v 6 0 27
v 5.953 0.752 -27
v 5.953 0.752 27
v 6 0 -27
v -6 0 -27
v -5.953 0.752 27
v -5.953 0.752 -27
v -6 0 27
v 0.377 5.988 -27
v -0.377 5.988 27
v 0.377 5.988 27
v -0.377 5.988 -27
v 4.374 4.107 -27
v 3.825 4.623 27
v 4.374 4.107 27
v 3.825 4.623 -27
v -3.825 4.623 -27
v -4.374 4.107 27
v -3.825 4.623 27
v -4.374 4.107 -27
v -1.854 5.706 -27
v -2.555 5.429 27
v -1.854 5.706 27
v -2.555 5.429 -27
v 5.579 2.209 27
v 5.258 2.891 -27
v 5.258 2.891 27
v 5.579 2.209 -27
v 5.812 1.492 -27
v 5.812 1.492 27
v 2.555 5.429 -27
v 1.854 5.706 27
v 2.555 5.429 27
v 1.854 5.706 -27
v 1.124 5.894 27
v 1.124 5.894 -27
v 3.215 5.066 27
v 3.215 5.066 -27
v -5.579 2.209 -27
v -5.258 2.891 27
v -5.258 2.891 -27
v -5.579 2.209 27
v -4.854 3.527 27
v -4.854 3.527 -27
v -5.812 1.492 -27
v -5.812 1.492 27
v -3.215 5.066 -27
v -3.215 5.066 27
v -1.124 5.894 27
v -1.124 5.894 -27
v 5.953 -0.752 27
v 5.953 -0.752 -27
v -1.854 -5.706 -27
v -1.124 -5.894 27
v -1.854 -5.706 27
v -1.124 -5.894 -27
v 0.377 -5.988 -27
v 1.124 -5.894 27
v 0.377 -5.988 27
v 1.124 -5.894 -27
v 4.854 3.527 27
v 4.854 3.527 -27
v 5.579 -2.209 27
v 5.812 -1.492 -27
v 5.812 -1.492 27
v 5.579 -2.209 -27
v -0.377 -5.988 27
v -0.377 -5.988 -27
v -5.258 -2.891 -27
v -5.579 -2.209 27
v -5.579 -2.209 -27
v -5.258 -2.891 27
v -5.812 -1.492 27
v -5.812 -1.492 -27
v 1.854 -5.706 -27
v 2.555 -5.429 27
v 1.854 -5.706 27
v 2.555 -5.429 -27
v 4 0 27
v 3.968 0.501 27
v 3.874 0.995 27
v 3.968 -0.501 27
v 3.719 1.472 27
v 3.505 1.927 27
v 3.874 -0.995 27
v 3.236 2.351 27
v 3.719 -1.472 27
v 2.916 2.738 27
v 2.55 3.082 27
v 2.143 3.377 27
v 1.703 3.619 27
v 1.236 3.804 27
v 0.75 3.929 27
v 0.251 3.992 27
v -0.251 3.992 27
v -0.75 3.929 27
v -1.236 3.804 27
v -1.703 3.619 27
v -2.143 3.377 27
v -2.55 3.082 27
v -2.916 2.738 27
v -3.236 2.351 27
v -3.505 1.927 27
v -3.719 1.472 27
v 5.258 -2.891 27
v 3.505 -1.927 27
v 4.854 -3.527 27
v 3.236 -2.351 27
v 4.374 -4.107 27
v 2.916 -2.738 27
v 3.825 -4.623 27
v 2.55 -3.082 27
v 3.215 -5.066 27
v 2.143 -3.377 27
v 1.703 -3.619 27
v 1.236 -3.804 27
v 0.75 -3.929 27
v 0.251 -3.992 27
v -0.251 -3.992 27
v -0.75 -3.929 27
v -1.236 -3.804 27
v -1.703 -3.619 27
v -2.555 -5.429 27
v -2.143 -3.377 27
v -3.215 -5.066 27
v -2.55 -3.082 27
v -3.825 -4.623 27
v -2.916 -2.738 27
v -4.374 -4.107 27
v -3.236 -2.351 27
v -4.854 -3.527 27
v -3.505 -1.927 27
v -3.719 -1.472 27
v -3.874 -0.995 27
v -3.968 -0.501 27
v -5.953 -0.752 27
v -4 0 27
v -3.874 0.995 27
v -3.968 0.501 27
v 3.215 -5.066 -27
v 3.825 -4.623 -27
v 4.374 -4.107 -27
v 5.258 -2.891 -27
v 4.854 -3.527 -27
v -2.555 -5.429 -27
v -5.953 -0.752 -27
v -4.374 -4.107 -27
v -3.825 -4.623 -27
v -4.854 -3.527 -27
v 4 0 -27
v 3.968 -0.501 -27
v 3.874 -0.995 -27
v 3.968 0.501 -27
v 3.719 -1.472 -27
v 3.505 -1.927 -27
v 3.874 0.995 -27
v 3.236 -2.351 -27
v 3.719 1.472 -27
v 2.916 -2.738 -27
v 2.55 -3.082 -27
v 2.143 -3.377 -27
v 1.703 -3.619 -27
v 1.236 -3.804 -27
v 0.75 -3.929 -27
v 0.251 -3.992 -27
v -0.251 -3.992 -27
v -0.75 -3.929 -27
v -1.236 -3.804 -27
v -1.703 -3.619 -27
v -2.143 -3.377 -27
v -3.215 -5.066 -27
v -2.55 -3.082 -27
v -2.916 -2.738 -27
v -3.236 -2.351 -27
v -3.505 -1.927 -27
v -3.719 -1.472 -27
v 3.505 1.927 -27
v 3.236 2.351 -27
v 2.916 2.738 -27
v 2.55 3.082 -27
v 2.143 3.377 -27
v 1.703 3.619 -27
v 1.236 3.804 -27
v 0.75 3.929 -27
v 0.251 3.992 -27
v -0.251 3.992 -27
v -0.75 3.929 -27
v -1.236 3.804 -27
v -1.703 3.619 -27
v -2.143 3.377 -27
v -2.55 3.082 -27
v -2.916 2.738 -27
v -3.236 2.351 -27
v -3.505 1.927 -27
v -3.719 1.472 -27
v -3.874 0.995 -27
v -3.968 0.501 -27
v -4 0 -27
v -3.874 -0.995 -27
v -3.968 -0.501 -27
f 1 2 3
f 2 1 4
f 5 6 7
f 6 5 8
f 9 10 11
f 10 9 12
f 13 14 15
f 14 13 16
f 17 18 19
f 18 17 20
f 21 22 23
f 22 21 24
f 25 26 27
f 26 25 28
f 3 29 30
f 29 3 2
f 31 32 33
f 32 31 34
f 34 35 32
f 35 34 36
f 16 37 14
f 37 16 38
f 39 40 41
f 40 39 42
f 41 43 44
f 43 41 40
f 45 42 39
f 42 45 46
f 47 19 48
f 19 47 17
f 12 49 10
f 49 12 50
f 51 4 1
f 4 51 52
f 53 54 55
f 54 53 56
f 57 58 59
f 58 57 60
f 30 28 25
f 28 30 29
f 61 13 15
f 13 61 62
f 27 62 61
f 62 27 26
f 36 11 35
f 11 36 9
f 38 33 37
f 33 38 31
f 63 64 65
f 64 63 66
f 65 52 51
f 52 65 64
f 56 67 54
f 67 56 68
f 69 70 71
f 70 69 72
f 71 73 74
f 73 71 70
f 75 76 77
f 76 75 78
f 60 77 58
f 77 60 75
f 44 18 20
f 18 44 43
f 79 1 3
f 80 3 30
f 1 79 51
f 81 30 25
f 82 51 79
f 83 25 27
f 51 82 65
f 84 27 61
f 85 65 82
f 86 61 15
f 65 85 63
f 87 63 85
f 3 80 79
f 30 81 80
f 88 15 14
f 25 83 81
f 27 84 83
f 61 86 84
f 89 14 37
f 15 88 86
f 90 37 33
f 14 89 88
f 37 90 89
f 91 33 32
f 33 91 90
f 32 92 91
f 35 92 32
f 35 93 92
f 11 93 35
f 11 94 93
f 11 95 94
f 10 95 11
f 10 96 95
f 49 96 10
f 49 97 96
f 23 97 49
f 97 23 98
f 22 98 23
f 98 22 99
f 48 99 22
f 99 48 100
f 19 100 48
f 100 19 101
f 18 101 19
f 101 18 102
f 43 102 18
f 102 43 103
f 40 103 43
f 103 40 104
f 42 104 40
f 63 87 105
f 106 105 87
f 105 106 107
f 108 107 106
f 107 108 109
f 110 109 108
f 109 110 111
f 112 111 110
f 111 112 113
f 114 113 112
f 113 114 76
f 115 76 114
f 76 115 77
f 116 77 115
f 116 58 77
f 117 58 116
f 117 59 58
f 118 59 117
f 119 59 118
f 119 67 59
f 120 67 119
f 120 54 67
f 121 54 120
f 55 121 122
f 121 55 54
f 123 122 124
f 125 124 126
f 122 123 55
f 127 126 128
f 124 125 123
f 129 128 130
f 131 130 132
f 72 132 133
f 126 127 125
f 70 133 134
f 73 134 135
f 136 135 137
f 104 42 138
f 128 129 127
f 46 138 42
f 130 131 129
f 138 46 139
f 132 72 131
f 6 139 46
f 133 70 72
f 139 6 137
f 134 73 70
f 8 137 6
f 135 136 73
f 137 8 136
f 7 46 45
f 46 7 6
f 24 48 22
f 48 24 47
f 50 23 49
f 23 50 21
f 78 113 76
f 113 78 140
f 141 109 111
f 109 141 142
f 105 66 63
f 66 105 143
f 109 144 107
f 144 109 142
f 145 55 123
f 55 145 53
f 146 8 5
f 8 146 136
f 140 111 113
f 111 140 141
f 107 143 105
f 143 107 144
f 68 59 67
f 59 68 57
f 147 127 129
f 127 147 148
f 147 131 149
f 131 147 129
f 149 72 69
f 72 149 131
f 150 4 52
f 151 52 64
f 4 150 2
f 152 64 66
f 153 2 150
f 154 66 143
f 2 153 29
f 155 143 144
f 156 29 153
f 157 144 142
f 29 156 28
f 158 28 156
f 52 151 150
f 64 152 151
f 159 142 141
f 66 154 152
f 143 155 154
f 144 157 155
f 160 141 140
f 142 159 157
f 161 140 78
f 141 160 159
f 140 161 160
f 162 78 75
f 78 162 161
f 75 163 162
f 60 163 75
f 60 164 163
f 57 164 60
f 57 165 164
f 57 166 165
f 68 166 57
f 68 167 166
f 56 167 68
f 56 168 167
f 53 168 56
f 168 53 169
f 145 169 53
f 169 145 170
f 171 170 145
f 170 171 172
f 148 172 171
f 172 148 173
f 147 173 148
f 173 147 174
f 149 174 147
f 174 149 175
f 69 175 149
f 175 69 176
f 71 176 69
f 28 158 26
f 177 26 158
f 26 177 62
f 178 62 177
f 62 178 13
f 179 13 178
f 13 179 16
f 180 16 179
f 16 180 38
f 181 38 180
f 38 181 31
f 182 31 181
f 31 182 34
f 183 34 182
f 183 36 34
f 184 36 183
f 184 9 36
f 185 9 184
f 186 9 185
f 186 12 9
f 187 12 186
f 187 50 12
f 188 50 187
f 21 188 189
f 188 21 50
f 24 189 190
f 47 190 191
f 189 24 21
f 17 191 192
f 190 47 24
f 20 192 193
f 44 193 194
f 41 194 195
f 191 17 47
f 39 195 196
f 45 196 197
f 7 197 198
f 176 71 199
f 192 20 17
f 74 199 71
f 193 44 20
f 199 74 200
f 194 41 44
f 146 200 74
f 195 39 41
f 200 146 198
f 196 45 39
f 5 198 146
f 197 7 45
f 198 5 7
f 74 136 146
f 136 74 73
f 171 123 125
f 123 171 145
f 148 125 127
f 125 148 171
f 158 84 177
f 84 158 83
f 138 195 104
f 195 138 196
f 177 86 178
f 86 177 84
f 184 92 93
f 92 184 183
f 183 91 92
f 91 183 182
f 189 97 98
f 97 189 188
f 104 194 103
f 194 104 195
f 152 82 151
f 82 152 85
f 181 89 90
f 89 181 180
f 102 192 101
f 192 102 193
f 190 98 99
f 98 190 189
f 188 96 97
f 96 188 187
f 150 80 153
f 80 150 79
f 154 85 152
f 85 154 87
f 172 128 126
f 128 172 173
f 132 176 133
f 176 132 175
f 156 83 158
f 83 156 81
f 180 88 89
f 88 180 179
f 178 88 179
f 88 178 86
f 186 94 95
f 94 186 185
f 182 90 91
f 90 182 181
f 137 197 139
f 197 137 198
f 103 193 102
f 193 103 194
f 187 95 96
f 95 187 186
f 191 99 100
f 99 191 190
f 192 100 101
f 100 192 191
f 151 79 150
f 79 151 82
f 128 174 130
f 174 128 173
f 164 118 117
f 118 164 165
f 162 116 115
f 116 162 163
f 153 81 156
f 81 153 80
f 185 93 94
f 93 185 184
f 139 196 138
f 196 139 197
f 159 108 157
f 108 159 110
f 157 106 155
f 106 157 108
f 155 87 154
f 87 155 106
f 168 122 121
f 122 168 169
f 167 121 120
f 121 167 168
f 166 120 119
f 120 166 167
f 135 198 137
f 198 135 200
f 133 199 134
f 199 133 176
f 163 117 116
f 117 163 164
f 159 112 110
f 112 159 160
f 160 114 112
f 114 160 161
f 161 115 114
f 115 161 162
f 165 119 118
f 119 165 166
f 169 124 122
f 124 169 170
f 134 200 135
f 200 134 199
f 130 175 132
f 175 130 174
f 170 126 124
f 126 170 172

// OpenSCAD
$fn = 50;


difference() {
	union() {
		translate(v = [0, 0, -27.0000000000]) {
			cylinder(h = 54, r = 6.0000000000);
		}
	}
	union() {
		translate(v = [0, 0, -100.0000000000]) {
			cylinder(h = 200, r = 4.0000000000);
		}
	}
}
